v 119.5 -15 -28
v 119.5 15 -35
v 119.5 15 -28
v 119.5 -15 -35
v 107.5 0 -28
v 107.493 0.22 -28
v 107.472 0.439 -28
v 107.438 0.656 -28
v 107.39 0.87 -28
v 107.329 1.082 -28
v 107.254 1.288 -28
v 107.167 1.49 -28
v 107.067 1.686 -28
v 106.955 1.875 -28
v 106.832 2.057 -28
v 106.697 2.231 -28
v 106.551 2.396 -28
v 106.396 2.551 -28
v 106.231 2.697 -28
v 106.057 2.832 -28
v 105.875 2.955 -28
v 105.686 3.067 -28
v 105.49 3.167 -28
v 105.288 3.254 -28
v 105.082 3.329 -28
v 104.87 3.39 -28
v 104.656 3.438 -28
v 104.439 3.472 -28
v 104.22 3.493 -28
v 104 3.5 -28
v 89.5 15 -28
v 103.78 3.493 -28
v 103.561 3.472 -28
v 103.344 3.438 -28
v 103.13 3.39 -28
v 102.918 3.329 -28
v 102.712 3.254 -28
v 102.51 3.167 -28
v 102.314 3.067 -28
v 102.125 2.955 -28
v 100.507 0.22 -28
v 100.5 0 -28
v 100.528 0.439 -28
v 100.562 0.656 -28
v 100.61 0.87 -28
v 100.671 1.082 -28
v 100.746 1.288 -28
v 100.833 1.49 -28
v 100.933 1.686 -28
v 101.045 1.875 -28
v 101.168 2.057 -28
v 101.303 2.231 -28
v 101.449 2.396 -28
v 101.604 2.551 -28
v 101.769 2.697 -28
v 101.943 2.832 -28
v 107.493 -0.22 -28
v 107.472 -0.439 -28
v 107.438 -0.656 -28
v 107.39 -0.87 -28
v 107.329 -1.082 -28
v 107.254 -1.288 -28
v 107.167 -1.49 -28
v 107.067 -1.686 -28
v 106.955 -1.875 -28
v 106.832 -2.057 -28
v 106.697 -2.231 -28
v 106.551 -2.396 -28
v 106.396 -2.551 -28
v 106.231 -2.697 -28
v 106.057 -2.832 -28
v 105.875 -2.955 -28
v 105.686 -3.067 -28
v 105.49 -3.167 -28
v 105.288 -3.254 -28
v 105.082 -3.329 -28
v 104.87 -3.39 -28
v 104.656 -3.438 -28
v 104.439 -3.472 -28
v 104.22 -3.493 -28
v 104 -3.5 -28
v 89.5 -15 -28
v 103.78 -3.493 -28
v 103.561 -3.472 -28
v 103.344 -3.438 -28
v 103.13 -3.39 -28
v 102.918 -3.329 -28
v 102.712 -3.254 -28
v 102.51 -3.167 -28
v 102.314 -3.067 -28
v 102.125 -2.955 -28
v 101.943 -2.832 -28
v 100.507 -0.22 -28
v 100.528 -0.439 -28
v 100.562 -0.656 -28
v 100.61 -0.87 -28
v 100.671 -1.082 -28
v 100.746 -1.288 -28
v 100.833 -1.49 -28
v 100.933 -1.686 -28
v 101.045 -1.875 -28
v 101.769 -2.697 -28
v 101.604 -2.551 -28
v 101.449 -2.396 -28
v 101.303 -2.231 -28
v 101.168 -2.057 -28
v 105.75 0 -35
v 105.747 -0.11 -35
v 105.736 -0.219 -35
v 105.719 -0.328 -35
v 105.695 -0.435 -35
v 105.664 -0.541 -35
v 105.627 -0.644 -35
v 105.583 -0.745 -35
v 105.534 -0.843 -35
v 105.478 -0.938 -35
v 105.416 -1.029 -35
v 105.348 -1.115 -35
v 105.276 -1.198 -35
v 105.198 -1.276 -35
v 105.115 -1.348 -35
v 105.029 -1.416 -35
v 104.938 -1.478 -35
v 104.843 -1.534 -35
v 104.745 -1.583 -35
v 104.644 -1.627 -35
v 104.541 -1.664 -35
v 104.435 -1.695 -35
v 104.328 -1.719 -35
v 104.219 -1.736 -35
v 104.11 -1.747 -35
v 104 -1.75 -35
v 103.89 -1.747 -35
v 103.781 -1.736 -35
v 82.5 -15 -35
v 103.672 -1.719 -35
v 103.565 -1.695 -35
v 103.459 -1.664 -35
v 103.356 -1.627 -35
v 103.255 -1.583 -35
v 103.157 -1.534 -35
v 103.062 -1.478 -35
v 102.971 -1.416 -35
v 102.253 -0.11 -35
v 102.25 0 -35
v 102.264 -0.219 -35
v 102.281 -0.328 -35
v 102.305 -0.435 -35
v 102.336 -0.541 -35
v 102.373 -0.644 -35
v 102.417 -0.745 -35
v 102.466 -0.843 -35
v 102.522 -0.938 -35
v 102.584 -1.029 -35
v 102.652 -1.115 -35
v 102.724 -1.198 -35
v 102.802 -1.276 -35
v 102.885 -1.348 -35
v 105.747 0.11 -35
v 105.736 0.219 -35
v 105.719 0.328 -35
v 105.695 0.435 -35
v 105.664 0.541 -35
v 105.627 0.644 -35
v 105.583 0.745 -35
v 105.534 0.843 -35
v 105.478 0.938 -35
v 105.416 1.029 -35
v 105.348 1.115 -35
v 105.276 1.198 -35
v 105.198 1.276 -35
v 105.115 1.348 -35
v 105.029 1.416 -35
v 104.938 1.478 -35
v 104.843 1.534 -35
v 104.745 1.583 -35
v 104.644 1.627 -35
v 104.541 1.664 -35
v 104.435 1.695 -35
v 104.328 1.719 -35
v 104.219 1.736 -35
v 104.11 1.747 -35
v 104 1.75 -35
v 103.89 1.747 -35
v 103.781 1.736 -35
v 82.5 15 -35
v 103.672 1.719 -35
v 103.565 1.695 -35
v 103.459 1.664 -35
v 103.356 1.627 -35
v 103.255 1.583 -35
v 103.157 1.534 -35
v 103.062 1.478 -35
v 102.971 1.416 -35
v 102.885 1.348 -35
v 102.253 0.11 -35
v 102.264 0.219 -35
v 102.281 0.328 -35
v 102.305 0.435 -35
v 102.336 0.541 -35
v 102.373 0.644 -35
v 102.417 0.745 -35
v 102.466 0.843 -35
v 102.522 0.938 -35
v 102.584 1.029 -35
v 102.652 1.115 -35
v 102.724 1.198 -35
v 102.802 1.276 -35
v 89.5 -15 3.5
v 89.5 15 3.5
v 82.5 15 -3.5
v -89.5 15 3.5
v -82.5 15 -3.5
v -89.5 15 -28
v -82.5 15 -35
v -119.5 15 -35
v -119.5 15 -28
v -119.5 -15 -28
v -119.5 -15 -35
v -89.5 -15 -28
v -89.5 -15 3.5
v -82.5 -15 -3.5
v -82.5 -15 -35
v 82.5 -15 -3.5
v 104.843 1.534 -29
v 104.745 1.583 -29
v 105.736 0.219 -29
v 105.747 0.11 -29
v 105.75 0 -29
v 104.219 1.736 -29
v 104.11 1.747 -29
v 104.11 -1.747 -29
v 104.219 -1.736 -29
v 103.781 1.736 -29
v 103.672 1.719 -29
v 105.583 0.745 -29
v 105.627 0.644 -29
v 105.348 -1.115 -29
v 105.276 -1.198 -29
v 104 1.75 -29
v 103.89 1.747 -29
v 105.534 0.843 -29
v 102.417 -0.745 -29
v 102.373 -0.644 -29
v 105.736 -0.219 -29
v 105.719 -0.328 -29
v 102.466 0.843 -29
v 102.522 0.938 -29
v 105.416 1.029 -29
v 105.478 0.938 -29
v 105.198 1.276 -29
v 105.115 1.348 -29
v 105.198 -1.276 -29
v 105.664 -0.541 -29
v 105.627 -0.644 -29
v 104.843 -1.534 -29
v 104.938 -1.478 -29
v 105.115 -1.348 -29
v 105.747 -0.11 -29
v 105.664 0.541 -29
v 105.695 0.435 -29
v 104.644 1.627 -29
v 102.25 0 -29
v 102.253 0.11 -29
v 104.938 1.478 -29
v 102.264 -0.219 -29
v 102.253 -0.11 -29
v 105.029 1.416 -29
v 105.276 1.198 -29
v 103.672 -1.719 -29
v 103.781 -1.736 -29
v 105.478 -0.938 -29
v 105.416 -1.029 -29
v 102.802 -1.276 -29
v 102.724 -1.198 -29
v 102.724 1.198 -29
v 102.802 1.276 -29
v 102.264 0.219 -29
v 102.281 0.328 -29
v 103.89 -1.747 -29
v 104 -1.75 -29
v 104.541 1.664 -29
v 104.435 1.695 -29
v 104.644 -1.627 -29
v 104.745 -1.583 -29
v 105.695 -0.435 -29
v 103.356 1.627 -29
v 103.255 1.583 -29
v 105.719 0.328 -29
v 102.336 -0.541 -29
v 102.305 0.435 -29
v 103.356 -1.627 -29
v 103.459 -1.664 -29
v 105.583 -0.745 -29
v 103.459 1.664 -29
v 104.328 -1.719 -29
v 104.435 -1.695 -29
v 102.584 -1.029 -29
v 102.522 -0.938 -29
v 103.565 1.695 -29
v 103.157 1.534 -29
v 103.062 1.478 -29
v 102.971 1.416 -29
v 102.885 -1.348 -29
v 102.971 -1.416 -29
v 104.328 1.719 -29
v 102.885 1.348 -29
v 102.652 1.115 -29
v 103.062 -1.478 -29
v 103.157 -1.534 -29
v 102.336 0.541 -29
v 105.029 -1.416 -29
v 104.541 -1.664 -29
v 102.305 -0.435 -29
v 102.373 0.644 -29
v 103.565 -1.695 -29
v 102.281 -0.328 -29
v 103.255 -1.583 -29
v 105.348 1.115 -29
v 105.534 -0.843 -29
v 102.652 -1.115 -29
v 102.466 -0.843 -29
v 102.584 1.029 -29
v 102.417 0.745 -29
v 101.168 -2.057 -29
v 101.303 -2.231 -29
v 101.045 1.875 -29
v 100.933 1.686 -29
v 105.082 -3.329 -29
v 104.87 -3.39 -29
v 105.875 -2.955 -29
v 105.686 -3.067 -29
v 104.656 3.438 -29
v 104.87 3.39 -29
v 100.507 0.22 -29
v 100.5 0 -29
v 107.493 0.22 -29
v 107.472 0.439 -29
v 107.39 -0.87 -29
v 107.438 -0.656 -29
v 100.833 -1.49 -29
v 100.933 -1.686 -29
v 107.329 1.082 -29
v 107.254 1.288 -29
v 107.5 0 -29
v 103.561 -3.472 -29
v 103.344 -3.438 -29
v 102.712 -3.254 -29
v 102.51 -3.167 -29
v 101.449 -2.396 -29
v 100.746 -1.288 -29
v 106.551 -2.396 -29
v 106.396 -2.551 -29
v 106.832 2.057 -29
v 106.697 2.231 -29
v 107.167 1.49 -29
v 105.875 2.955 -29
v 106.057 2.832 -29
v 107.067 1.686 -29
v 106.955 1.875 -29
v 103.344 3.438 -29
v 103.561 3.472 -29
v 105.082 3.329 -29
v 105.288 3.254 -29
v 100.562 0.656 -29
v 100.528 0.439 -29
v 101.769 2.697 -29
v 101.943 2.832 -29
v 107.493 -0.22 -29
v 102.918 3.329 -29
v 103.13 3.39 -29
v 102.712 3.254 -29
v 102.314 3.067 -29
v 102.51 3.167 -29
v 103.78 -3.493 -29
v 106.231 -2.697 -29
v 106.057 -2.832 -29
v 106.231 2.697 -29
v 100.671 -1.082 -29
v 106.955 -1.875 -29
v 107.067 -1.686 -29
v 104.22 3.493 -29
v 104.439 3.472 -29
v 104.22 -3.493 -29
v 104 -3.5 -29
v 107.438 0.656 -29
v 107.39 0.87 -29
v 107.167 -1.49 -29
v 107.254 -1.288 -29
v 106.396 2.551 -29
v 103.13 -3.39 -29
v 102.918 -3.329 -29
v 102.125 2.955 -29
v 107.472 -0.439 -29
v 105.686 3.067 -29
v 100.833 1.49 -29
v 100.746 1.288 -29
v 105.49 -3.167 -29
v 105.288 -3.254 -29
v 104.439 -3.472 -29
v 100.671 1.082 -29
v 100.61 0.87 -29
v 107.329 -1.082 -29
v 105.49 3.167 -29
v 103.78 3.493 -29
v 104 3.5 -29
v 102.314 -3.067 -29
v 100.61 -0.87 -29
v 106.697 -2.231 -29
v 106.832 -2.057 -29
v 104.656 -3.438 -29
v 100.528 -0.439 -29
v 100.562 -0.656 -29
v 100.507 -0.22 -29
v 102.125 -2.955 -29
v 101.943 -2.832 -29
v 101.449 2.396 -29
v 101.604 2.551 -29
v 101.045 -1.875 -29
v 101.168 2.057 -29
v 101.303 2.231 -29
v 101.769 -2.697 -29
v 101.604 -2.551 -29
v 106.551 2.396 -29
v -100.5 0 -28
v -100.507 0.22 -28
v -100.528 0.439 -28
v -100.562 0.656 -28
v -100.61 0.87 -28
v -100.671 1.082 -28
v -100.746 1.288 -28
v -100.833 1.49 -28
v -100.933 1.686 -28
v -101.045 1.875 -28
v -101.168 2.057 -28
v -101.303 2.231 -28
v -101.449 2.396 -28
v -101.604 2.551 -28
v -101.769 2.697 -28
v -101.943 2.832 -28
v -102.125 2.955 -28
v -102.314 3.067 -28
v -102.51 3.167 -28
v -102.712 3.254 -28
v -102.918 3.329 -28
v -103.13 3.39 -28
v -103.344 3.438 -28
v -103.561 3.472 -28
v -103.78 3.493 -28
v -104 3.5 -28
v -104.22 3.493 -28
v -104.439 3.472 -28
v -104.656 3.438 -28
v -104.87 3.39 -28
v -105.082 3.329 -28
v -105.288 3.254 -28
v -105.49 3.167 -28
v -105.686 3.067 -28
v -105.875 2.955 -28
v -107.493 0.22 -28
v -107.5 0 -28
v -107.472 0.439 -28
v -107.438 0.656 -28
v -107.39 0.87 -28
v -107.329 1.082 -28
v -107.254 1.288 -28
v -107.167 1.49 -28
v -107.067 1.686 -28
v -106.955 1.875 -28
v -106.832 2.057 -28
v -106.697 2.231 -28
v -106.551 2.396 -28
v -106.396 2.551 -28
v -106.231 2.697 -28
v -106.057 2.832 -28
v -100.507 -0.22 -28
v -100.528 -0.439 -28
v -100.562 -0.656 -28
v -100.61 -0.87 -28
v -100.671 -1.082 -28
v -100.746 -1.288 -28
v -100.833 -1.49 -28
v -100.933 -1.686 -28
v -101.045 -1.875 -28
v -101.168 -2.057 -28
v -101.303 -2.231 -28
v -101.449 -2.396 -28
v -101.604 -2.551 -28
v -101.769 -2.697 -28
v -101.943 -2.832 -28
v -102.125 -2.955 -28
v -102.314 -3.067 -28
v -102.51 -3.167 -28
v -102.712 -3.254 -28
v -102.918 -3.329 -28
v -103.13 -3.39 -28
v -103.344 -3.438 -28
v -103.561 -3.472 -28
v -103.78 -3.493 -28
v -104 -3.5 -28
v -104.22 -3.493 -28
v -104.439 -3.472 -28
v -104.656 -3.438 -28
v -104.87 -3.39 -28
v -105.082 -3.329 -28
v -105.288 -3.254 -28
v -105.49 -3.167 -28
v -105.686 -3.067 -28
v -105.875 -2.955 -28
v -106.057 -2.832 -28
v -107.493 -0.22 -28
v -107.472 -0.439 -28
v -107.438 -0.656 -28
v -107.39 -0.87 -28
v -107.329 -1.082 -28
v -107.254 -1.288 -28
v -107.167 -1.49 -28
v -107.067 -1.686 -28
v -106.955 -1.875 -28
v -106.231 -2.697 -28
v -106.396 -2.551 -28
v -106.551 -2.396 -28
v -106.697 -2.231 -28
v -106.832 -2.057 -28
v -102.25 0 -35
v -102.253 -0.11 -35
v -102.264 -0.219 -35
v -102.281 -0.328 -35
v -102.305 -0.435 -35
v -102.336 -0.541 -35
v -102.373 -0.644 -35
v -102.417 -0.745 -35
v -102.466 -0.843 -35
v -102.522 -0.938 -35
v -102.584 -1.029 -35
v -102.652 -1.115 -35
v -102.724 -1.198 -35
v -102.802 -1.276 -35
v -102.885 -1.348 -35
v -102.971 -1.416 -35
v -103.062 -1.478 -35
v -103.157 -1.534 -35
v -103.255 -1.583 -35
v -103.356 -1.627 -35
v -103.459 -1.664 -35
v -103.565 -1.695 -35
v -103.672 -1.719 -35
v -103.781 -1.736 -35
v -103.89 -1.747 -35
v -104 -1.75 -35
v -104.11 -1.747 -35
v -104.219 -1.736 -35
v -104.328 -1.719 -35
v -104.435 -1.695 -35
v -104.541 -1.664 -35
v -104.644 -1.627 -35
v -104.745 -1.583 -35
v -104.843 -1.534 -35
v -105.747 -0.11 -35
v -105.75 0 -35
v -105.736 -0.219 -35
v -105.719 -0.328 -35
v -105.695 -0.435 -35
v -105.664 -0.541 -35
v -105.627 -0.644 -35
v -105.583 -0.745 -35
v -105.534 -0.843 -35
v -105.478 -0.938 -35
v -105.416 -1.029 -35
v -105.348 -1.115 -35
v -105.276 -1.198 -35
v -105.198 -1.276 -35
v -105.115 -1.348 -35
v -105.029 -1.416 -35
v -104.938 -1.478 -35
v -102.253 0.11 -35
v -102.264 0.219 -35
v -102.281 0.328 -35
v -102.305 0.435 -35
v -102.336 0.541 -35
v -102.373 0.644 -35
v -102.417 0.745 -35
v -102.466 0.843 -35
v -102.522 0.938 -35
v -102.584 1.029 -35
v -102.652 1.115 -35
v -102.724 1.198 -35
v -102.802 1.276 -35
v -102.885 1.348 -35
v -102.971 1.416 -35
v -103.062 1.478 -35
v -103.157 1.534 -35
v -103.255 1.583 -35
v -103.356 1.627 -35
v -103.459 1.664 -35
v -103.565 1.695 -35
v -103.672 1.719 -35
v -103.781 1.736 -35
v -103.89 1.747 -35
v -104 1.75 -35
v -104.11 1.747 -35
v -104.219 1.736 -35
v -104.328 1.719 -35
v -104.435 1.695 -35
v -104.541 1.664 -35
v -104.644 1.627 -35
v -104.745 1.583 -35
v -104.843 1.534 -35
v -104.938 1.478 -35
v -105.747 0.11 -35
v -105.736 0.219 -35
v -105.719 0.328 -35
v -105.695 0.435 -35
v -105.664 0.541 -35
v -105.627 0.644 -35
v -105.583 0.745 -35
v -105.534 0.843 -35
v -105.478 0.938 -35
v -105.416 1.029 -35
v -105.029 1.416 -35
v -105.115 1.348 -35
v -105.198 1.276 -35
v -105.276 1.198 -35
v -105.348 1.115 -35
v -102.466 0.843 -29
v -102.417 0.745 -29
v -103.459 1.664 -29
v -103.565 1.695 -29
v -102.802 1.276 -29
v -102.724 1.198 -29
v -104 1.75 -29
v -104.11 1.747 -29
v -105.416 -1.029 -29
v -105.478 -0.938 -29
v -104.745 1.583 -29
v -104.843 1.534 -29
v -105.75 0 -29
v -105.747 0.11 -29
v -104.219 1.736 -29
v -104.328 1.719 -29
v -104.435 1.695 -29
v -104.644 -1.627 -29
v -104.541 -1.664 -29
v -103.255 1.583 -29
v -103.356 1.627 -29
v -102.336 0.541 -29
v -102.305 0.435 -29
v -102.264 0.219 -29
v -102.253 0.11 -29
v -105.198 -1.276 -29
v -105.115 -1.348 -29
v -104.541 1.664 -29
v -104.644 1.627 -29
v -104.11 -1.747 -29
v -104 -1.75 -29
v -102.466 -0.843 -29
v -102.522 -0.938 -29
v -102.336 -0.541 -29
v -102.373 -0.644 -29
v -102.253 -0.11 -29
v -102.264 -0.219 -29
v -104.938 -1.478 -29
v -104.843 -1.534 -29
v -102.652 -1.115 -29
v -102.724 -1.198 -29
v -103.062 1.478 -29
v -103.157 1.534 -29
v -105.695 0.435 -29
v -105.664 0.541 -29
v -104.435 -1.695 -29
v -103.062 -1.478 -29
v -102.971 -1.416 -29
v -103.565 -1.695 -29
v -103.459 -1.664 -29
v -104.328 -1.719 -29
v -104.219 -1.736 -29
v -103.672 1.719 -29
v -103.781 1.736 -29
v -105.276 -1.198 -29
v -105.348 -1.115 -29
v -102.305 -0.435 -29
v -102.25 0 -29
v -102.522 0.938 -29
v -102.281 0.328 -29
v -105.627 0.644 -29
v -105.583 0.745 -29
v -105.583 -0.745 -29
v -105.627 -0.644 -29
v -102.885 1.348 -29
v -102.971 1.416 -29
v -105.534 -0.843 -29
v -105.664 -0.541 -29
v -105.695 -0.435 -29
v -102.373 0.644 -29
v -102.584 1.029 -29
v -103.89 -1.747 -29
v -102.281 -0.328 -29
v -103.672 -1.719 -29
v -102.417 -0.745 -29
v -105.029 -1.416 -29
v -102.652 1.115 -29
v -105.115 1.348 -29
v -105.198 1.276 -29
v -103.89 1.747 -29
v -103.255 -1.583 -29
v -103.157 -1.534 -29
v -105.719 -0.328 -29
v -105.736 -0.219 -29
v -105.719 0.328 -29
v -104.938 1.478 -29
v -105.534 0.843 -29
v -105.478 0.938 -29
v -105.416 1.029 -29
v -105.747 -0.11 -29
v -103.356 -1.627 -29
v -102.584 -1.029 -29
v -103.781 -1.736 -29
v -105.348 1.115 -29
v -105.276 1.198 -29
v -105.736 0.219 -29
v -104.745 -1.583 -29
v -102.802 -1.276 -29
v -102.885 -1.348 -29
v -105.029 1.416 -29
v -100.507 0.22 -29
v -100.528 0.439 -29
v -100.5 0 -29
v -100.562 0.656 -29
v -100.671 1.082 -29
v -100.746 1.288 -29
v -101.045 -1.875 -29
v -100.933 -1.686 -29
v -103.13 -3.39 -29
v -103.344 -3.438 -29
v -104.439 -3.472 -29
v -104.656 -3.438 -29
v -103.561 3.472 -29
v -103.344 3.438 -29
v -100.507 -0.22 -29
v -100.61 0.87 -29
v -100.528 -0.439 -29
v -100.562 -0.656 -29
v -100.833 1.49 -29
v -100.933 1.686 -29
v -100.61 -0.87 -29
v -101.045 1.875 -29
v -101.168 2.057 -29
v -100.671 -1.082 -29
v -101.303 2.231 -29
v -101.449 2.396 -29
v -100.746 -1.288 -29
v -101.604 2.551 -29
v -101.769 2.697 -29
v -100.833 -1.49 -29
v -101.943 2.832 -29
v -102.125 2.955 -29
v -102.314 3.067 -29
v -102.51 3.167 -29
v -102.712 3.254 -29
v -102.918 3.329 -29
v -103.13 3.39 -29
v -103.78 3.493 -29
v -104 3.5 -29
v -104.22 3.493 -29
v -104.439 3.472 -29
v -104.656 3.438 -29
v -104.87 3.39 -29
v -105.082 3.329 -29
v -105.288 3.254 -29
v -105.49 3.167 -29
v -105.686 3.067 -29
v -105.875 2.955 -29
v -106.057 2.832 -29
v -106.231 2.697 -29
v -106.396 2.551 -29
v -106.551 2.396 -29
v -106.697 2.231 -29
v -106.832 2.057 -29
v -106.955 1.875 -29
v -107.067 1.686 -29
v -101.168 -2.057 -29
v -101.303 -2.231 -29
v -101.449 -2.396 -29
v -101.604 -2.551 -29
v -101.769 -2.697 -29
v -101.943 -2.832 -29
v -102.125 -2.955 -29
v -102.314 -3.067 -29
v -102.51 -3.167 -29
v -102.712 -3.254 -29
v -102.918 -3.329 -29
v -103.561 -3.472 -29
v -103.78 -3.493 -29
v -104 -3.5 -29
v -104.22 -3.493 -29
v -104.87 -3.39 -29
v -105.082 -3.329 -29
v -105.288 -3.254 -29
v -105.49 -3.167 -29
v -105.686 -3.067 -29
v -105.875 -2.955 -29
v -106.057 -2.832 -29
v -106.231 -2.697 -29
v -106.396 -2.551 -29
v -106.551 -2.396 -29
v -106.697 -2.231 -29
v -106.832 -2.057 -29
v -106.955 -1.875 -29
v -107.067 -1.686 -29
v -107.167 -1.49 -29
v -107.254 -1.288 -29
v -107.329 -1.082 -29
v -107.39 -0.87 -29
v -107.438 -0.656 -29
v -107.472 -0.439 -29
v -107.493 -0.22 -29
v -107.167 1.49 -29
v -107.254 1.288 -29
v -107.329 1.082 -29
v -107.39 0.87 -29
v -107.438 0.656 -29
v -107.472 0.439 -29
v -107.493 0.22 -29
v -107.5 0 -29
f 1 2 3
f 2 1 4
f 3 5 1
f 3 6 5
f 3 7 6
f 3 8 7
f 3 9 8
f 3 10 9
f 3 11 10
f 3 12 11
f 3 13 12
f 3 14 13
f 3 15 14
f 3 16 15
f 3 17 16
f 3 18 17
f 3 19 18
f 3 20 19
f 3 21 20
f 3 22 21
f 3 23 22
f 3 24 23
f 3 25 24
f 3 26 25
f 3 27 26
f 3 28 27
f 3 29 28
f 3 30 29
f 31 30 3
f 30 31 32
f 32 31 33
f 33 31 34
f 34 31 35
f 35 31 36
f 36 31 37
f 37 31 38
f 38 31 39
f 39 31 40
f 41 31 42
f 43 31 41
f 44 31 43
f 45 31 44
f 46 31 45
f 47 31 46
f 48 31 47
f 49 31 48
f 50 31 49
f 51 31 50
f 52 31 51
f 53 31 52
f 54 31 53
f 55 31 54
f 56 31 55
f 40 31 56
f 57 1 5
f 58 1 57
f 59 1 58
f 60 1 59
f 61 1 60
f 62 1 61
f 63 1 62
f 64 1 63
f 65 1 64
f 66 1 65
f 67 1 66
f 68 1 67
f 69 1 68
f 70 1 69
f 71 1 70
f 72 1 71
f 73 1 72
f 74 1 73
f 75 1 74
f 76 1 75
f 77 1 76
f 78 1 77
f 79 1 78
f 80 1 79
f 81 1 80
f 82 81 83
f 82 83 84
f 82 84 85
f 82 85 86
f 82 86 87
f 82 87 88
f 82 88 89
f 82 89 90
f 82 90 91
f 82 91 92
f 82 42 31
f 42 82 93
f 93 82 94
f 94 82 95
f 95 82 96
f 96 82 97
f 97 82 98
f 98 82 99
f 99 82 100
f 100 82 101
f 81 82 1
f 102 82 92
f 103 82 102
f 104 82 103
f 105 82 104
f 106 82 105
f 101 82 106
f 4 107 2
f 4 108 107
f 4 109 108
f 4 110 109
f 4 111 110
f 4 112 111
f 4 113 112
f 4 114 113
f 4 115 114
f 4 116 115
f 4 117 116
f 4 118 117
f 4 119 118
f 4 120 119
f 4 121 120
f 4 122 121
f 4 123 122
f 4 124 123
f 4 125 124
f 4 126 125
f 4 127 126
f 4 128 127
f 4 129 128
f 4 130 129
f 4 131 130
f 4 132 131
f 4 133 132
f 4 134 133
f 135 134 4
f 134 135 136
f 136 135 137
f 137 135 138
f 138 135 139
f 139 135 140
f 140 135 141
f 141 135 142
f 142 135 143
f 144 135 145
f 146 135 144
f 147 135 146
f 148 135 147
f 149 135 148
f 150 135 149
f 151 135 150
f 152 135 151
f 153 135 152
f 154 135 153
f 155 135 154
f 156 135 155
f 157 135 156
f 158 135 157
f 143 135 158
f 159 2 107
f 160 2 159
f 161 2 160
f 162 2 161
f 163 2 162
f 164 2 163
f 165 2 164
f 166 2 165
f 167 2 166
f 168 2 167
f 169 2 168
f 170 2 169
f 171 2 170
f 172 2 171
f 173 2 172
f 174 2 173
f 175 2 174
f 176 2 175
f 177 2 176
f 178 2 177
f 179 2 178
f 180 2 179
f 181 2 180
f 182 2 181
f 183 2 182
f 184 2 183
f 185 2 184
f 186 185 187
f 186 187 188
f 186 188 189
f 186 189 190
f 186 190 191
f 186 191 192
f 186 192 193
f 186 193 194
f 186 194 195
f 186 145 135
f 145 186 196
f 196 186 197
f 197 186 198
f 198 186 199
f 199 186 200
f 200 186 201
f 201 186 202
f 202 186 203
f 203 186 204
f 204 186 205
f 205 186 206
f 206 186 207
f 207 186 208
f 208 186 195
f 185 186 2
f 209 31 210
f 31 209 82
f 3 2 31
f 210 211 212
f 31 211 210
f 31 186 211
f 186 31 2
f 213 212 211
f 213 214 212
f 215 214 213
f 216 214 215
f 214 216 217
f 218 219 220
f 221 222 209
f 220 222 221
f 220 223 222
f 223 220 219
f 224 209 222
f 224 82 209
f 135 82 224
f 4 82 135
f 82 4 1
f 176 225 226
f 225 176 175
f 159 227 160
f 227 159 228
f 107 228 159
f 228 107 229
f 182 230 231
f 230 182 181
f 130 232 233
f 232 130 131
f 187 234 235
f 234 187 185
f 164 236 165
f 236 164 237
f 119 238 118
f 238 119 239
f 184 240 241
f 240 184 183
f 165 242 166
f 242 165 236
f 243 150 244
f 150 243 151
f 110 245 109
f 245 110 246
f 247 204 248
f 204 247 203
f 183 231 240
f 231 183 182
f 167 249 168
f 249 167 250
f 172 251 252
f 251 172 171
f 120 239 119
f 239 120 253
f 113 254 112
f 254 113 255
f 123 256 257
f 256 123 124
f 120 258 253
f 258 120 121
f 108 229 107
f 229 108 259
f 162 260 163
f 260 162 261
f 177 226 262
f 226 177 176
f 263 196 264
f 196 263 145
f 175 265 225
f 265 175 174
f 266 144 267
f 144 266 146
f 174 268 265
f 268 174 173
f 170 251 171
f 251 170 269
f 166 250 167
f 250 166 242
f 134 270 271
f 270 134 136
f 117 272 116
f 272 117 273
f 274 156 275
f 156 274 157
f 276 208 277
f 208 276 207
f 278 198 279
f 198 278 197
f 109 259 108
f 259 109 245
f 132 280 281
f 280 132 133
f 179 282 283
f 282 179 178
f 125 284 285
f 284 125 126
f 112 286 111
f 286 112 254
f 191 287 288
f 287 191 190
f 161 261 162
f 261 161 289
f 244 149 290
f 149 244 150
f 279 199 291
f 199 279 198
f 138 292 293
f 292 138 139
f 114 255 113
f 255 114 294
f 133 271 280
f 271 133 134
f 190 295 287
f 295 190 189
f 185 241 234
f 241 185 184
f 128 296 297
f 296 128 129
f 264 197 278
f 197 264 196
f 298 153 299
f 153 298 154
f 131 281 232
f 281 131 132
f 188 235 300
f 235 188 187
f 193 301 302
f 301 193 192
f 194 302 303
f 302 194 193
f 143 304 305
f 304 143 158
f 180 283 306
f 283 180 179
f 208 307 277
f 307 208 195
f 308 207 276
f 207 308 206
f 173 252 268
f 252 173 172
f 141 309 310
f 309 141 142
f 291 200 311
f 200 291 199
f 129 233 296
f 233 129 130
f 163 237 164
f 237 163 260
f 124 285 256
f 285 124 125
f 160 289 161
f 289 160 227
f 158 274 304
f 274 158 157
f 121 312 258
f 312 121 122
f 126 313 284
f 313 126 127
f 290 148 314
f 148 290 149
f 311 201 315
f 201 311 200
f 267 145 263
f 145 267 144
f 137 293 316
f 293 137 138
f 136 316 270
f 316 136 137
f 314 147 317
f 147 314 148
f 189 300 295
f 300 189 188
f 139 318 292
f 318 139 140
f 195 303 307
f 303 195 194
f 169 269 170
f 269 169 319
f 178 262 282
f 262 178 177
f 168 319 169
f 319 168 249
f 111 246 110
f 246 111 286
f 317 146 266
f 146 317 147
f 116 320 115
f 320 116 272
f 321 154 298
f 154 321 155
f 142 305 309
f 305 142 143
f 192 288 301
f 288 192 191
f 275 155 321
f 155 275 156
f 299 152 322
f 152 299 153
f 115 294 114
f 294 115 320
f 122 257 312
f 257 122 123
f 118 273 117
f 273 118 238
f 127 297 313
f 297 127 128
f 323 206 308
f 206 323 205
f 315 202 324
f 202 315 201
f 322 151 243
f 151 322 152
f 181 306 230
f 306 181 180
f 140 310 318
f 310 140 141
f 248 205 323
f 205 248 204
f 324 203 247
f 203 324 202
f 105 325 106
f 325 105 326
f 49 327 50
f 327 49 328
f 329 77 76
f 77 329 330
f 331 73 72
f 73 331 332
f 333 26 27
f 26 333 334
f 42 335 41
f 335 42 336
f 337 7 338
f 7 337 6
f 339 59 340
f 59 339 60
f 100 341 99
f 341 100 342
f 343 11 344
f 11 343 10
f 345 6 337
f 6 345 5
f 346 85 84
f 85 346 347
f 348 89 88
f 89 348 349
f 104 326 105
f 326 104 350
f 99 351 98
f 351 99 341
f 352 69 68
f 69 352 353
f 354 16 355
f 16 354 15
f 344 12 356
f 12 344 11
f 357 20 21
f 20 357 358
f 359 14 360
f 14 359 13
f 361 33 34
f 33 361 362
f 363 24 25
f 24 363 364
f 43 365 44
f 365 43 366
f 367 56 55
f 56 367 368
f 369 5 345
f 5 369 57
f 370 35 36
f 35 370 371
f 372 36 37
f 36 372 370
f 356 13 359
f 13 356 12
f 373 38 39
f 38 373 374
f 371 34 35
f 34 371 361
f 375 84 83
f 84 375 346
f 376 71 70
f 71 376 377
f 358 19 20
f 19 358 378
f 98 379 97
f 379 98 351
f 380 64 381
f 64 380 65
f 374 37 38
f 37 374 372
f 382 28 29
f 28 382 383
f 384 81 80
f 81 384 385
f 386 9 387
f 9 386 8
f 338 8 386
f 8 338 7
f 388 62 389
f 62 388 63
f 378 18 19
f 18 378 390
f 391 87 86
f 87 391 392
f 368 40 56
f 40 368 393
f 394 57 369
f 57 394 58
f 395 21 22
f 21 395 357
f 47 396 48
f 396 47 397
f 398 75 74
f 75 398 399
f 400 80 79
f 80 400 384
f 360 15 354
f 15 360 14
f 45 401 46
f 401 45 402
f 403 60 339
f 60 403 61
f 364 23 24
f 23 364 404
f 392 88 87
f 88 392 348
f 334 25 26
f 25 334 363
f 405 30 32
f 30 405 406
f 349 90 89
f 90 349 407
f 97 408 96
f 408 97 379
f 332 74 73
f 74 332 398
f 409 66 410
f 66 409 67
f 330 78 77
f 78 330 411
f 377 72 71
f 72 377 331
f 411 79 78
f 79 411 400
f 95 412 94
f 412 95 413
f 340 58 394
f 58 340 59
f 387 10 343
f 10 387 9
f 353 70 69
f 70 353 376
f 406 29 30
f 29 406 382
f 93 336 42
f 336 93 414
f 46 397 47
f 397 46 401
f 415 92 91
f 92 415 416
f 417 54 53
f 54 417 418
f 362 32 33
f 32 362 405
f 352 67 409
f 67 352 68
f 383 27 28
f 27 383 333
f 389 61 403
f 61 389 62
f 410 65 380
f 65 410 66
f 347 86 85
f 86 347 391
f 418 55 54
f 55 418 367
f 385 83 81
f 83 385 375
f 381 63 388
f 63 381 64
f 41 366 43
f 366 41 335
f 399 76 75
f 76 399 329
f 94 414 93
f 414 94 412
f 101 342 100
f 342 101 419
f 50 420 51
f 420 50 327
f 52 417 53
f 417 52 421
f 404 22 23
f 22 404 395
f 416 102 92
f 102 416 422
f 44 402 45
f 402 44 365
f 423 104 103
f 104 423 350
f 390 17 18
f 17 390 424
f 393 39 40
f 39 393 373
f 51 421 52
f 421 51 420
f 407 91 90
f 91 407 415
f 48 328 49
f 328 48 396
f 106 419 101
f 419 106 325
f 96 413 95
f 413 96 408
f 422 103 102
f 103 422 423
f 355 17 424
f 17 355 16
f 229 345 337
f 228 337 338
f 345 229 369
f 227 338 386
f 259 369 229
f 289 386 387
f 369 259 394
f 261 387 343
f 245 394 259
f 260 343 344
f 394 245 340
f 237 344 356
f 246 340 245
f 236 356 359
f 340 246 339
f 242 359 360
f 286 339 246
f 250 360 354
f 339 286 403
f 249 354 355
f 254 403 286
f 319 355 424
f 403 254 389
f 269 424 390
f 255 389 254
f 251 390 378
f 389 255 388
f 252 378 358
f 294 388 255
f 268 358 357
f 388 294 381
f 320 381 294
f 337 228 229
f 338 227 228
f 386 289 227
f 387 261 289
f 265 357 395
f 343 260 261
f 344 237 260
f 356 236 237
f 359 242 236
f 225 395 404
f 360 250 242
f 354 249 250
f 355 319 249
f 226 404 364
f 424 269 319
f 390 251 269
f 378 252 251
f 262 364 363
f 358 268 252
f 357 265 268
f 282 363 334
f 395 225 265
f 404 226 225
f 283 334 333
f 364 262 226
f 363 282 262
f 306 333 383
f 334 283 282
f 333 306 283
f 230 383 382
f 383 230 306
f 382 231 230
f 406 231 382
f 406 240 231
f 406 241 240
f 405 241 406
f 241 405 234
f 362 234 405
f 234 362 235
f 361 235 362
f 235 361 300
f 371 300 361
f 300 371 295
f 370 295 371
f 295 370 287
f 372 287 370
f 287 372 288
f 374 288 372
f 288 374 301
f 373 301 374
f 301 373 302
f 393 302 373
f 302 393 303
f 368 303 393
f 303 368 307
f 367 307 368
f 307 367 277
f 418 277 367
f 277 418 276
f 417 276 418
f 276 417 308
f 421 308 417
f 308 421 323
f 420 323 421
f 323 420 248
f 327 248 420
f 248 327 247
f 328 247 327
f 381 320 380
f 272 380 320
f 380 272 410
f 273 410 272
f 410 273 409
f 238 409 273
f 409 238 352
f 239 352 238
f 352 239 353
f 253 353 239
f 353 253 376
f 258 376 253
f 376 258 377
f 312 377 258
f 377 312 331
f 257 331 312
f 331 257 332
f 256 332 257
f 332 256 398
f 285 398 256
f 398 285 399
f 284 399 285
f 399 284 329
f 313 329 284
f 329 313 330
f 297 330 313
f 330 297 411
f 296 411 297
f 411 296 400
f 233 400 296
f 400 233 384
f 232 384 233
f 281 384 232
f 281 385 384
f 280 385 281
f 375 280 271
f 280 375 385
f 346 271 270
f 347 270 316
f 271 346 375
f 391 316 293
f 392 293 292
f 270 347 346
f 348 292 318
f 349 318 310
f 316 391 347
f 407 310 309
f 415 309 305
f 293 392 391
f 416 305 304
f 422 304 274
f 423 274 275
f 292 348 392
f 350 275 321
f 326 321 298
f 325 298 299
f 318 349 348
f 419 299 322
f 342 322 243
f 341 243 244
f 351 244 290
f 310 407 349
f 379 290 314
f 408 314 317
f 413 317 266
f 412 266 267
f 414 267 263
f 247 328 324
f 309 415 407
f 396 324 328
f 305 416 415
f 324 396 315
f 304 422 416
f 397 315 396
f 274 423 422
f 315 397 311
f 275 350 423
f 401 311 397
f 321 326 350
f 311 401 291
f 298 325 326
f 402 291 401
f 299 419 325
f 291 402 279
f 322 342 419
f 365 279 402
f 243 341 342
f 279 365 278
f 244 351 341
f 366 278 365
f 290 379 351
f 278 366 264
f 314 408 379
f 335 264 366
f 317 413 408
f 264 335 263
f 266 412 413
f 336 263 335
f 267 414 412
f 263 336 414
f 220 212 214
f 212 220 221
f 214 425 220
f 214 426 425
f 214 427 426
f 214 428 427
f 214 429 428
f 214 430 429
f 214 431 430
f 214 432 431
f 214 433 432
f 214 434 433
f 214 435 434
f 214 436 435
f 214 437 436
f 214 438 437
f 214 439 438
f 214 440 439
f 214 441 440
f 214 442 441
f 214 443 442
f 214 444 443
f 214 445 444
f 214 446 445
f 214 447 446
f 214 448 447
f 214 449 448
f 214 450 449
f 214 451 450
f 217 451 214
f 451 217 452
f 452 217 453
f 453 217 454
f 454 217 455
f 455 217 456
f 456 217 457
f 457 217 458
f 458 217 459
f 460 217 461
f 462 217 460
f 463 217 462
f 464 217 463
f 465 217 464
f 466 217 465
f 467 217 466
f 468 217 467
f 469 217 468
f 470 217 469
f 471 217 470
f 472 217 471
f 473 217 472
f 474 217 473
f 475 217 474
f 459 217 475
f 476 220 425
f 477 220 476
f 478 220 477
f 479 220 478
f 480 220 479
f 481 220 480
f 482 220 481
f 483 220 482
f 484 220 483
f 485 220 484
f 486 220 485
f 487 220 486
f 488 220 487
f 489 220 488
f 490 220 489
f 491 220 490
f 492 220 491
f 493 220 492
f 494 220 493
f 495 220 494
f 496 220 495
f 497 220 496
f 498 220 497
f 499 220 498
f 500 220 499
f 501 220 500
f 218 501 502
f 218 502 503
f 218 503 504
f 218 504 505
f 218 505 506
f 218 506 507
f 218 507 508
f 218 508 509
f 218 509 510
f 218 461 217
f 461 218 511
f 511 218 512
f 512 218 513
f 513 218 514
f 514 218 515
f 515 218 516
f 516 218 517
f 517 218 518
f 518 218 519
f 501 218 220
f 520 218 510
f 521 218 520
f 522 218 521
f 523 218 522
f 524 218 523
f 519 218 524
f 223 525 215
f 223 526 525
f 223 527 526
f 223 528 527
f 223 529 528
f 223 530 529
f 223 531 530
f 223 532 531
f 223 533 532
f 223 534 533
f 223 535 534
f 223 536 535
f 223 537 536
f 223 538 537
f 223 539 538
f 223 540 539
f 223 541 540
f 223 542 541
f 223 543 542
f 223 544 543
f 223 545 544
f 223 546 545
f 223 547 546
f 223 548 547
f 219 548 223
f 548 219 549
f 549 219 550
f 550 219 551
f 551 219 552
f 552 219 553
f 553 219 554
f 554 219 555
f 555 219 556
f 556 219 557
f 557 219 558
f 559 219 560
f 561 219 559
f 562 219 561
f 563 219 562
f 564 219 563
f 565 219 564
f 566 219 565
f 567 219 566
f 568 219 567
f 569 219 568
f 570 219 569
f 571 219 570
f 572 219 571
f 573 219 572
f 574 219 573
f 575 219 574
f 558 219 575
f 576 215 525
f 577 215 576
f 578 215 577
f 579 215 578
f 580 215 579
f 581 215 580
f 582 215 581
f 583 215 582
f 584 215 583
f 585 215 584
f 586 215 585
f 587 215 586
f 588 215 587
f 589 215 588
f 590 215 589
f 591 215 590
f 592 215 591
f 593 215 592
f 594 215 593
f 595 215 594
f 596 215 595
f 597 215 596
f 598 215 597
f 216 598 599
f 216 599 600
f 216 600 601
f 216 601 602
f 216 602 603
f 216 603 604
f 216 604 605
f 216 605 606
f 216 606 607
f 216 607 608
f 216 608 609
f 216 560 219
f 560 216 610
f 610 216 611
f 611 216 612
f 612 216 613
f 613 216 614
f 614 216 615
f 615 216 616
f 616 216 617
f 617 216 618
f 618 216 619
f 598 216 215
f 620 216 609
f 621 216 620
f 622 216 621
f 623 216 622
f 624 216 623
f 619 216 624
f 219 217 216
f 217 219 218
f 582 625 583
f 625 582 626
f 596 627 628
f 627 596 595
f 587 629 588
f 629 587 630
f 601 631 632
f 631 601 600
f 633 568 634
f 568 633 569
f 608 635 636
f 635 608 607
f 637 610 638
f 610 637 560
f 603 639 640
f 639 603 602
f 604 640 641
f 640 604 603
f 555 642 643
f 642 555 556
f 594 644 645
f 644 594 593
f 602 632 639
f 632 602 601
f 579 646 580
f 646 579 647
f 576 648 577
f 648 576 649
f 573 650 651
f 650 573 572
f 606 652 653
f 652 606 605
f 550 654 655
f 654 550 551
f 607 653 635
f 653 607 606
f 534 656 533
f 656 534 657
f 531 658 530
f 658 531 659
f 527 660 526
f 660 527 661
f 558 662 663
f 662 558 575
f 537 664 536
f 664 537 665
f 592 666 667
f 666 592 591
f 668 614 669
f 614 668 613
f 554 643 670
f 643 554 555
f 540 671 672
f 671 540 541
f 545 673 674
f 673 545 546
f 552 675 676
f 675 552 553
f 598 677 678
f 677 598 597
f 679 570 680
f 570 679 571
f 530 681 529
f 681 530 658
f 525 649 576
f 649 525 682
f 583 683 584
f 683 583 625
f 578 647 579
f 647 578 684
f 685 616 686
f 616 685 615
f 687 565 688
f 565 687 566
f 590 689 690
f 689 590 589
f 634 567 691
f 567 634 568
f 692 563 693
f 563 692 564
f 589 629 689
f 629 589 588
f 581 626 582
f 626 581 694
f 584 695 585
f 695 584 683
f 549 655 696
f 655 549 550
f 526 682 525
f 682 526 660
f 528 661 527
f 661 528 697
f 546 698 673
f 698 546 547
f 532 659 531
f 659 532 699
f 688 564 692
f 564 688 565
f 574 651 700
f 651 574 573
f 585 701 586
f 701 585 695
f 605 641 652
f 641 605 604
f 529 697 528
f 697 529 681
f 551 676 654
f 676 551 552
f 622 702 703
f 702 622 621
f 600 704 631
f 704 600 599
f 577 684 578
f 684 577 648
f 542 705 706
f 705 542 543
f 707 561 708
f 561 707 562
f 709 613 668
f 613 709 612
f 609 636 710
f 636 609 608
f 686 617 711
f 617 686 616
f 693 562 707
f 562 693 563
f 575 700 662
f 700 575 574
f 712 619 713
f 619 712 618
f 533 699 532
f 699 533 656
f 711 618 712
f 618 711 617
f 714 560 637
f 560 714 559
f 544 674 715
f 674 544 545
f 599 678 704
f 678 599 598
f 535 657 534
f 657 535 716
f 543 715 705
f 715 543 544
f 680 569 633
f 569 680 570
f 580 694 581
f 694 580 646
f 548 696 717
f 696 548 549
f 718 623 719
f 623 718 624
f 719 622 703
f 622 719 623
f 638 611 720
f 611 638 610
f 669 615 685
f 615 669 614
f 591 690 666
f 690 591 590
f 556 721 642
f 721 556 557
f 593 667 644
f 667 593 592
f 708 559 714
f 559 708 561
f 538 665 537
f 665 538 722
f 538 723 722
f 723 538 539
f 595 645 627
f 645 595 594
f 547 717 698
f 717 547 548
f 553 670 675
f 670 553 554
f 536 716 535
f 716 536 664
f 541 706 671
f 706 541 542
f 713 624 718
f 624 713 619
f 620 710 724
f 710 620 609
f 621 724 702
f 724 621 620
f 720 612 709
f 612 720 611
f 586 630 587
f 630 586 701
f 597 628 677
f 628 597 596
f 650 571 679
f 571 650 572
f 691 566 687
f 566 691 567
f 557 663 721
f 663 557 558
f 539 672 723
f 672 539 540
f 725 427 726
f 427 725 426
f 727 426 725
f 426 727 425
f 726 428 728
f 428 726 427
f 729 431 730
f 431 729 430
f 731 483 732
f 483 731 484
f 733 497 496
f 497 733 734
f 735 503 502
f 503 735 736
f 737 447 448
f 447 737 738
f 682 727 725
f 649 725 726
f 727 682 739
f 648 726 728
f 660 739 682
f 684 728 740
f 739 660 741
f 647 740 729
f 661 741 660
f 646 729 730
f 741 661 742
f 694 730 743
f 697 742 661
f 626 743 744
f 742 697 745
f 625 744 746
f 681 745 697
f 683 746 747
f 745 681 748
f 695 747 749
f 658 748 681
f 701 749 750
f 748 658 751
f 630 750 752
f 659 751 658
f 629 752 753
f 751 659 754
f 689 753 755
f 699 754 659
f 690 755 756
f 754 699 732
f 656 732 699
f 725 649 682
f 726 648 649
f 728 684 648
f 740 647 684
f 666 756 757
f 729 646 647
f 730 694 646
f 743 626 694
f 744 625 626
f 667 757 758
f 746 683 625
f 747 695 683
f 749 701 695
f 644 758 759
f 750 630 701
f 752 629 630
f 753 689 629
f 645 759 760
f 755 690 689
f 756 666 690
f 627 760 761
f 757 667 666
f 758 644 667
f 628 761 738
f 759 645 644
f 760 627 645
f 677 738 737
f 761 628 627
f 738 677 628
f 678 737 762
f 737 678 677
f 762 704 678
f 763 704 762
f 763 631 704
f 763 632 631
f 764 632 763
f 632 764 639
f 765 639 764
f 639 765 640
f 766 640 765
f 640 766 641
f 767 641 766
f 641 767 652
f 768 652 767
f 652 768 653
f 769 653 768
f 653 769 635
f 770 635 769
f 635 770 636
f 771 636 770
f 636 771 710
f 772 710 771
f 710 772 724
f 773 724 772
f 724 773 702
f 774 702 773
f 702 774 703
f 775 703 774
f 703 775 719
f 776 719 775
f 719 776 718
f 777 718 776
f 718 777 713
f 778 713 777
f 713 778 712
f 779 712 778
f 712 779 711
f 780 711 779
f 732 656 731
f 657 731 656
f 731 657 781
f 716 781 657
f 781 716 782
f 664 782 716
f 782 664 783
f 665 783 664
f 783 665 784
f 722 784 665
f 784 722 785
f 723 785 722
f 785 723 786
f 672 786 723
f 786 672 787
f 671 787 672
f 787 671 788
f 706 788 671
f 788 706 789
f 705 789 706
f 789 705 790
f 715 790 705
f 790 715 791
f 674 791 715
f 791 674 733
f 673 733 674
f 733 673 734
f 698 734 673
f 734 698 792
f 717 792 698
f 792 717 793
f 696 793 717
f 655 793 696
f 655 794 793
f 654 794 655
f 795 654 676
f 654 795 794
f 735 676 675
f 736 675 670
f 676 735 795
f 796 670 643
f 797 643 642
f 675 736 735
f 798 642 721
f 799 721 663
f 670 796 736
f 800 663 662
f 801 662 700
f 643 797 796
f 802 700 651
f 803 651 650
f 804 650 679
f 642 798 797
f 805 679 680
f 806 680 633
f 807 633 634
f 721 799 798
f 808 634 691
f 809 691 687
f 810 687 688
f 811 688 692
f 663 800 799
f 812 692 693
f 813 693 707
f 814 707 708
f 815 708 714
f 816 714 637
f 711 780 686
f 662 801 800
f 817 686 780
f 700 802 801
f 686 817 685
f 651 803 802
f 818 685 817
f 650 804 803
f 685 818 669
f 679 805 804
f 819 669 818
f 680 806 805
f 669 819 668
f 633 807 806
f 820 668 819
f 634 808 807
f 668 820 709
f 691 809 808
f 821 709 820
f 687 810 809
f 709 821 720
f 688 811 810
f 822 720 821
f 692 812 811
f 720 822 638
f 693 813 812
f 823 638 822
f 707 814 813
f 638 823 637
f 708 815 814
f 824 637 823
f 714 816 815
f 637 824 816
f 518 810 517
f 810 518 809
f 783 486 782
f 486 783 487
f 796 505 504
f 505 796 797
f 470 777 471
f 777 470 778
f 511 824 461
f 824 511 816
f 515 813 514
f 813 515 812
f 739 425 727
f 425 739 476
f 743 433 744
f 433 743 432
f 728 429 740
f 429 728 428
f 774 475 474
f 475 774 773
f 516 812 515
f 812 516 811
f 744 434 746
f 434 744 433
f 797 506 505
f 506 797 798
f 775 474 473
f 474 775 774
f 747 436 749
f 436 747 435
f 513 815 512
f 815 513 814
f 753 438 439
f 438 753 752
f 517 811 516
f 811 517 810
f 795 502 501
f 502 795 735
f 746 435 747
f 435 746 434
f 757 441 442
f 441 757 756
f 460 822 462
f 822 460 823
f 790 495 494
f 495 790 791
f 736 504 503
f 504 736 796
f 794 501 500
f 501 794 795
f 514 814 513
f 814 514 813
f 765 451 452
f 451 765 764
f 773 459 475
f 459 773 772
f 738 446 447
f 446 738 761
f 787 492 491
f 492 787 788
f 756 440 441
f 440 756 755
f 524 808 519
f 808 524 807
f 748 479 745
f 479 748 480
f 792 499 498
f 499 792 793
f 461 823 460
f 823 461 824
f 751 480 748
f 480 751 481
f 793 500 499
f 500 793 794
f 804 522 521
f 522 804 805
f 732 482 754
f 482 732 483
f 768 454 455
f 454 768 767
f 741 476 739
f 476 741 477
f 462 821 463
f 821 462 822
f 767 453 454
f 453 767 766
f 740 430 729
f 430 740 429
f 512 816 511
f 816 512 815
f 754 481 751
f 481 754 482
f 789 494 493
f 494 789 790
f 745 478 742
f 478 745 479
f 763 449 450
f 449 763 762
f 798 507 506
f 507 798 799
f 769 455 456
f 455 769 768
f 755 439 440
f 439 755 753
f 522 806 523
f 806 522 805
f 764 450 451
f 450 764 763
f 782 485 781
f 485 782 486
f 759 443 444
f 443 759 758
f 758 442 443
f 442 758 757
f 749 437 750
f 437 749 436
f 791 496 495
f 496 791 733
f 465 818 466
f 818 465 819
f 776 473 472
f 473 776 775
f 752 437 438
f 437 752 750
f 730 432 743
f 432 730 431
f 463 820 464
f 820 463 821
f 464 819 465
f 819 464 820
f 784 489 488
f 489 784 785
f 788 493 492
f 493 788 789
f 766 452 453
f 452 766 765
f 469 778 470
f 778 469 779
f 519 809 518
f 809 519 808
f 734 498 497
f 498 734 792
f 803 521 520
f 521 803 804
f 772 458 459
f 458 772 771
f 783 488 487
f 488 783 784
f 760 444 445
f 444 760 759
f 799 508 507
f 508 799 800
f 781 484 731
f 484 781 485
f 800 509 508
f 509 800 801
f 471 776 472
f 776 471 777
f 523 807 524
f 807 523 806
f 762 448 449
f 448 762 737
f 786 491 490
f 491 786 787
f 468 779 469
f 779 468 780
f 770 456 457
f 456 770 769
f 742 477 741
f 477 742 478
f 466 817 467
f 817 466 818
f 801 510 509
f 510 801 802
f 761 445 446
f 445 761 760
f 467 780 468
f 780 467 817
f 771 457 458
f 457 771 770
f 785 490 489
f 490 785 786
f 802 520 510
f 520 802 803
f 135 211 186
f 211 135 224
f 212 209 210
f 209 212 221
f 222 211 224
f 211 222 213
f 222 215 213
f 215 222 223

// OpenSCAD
$fn=100;


cube([165,30,7], center = true);

translate([86,0,-15.75])
cube([7,30,38.5], center = true);

translate([-86,0,-15.75])
cube([7,30,38.5], center = true);

difference() {
translate([104.5,0,-31.5])
cube([30,30,7], center = true);

translate([104,0,-26])
cylinder(r=1.75,h=20 , center = true);

translate([104,0,-28])
cylinder(r=3.5,h=2 , center = true);
    }



difference() {
translate([-104.5,0,-31.5])
cube([30,30,7], center = true);

translate([-104,0,-26])
cylinder(r=1.75,h=20 , center = true);

translate([-104,0,-28])
cylinder(r=3.5,h=2 , center = true);
}
